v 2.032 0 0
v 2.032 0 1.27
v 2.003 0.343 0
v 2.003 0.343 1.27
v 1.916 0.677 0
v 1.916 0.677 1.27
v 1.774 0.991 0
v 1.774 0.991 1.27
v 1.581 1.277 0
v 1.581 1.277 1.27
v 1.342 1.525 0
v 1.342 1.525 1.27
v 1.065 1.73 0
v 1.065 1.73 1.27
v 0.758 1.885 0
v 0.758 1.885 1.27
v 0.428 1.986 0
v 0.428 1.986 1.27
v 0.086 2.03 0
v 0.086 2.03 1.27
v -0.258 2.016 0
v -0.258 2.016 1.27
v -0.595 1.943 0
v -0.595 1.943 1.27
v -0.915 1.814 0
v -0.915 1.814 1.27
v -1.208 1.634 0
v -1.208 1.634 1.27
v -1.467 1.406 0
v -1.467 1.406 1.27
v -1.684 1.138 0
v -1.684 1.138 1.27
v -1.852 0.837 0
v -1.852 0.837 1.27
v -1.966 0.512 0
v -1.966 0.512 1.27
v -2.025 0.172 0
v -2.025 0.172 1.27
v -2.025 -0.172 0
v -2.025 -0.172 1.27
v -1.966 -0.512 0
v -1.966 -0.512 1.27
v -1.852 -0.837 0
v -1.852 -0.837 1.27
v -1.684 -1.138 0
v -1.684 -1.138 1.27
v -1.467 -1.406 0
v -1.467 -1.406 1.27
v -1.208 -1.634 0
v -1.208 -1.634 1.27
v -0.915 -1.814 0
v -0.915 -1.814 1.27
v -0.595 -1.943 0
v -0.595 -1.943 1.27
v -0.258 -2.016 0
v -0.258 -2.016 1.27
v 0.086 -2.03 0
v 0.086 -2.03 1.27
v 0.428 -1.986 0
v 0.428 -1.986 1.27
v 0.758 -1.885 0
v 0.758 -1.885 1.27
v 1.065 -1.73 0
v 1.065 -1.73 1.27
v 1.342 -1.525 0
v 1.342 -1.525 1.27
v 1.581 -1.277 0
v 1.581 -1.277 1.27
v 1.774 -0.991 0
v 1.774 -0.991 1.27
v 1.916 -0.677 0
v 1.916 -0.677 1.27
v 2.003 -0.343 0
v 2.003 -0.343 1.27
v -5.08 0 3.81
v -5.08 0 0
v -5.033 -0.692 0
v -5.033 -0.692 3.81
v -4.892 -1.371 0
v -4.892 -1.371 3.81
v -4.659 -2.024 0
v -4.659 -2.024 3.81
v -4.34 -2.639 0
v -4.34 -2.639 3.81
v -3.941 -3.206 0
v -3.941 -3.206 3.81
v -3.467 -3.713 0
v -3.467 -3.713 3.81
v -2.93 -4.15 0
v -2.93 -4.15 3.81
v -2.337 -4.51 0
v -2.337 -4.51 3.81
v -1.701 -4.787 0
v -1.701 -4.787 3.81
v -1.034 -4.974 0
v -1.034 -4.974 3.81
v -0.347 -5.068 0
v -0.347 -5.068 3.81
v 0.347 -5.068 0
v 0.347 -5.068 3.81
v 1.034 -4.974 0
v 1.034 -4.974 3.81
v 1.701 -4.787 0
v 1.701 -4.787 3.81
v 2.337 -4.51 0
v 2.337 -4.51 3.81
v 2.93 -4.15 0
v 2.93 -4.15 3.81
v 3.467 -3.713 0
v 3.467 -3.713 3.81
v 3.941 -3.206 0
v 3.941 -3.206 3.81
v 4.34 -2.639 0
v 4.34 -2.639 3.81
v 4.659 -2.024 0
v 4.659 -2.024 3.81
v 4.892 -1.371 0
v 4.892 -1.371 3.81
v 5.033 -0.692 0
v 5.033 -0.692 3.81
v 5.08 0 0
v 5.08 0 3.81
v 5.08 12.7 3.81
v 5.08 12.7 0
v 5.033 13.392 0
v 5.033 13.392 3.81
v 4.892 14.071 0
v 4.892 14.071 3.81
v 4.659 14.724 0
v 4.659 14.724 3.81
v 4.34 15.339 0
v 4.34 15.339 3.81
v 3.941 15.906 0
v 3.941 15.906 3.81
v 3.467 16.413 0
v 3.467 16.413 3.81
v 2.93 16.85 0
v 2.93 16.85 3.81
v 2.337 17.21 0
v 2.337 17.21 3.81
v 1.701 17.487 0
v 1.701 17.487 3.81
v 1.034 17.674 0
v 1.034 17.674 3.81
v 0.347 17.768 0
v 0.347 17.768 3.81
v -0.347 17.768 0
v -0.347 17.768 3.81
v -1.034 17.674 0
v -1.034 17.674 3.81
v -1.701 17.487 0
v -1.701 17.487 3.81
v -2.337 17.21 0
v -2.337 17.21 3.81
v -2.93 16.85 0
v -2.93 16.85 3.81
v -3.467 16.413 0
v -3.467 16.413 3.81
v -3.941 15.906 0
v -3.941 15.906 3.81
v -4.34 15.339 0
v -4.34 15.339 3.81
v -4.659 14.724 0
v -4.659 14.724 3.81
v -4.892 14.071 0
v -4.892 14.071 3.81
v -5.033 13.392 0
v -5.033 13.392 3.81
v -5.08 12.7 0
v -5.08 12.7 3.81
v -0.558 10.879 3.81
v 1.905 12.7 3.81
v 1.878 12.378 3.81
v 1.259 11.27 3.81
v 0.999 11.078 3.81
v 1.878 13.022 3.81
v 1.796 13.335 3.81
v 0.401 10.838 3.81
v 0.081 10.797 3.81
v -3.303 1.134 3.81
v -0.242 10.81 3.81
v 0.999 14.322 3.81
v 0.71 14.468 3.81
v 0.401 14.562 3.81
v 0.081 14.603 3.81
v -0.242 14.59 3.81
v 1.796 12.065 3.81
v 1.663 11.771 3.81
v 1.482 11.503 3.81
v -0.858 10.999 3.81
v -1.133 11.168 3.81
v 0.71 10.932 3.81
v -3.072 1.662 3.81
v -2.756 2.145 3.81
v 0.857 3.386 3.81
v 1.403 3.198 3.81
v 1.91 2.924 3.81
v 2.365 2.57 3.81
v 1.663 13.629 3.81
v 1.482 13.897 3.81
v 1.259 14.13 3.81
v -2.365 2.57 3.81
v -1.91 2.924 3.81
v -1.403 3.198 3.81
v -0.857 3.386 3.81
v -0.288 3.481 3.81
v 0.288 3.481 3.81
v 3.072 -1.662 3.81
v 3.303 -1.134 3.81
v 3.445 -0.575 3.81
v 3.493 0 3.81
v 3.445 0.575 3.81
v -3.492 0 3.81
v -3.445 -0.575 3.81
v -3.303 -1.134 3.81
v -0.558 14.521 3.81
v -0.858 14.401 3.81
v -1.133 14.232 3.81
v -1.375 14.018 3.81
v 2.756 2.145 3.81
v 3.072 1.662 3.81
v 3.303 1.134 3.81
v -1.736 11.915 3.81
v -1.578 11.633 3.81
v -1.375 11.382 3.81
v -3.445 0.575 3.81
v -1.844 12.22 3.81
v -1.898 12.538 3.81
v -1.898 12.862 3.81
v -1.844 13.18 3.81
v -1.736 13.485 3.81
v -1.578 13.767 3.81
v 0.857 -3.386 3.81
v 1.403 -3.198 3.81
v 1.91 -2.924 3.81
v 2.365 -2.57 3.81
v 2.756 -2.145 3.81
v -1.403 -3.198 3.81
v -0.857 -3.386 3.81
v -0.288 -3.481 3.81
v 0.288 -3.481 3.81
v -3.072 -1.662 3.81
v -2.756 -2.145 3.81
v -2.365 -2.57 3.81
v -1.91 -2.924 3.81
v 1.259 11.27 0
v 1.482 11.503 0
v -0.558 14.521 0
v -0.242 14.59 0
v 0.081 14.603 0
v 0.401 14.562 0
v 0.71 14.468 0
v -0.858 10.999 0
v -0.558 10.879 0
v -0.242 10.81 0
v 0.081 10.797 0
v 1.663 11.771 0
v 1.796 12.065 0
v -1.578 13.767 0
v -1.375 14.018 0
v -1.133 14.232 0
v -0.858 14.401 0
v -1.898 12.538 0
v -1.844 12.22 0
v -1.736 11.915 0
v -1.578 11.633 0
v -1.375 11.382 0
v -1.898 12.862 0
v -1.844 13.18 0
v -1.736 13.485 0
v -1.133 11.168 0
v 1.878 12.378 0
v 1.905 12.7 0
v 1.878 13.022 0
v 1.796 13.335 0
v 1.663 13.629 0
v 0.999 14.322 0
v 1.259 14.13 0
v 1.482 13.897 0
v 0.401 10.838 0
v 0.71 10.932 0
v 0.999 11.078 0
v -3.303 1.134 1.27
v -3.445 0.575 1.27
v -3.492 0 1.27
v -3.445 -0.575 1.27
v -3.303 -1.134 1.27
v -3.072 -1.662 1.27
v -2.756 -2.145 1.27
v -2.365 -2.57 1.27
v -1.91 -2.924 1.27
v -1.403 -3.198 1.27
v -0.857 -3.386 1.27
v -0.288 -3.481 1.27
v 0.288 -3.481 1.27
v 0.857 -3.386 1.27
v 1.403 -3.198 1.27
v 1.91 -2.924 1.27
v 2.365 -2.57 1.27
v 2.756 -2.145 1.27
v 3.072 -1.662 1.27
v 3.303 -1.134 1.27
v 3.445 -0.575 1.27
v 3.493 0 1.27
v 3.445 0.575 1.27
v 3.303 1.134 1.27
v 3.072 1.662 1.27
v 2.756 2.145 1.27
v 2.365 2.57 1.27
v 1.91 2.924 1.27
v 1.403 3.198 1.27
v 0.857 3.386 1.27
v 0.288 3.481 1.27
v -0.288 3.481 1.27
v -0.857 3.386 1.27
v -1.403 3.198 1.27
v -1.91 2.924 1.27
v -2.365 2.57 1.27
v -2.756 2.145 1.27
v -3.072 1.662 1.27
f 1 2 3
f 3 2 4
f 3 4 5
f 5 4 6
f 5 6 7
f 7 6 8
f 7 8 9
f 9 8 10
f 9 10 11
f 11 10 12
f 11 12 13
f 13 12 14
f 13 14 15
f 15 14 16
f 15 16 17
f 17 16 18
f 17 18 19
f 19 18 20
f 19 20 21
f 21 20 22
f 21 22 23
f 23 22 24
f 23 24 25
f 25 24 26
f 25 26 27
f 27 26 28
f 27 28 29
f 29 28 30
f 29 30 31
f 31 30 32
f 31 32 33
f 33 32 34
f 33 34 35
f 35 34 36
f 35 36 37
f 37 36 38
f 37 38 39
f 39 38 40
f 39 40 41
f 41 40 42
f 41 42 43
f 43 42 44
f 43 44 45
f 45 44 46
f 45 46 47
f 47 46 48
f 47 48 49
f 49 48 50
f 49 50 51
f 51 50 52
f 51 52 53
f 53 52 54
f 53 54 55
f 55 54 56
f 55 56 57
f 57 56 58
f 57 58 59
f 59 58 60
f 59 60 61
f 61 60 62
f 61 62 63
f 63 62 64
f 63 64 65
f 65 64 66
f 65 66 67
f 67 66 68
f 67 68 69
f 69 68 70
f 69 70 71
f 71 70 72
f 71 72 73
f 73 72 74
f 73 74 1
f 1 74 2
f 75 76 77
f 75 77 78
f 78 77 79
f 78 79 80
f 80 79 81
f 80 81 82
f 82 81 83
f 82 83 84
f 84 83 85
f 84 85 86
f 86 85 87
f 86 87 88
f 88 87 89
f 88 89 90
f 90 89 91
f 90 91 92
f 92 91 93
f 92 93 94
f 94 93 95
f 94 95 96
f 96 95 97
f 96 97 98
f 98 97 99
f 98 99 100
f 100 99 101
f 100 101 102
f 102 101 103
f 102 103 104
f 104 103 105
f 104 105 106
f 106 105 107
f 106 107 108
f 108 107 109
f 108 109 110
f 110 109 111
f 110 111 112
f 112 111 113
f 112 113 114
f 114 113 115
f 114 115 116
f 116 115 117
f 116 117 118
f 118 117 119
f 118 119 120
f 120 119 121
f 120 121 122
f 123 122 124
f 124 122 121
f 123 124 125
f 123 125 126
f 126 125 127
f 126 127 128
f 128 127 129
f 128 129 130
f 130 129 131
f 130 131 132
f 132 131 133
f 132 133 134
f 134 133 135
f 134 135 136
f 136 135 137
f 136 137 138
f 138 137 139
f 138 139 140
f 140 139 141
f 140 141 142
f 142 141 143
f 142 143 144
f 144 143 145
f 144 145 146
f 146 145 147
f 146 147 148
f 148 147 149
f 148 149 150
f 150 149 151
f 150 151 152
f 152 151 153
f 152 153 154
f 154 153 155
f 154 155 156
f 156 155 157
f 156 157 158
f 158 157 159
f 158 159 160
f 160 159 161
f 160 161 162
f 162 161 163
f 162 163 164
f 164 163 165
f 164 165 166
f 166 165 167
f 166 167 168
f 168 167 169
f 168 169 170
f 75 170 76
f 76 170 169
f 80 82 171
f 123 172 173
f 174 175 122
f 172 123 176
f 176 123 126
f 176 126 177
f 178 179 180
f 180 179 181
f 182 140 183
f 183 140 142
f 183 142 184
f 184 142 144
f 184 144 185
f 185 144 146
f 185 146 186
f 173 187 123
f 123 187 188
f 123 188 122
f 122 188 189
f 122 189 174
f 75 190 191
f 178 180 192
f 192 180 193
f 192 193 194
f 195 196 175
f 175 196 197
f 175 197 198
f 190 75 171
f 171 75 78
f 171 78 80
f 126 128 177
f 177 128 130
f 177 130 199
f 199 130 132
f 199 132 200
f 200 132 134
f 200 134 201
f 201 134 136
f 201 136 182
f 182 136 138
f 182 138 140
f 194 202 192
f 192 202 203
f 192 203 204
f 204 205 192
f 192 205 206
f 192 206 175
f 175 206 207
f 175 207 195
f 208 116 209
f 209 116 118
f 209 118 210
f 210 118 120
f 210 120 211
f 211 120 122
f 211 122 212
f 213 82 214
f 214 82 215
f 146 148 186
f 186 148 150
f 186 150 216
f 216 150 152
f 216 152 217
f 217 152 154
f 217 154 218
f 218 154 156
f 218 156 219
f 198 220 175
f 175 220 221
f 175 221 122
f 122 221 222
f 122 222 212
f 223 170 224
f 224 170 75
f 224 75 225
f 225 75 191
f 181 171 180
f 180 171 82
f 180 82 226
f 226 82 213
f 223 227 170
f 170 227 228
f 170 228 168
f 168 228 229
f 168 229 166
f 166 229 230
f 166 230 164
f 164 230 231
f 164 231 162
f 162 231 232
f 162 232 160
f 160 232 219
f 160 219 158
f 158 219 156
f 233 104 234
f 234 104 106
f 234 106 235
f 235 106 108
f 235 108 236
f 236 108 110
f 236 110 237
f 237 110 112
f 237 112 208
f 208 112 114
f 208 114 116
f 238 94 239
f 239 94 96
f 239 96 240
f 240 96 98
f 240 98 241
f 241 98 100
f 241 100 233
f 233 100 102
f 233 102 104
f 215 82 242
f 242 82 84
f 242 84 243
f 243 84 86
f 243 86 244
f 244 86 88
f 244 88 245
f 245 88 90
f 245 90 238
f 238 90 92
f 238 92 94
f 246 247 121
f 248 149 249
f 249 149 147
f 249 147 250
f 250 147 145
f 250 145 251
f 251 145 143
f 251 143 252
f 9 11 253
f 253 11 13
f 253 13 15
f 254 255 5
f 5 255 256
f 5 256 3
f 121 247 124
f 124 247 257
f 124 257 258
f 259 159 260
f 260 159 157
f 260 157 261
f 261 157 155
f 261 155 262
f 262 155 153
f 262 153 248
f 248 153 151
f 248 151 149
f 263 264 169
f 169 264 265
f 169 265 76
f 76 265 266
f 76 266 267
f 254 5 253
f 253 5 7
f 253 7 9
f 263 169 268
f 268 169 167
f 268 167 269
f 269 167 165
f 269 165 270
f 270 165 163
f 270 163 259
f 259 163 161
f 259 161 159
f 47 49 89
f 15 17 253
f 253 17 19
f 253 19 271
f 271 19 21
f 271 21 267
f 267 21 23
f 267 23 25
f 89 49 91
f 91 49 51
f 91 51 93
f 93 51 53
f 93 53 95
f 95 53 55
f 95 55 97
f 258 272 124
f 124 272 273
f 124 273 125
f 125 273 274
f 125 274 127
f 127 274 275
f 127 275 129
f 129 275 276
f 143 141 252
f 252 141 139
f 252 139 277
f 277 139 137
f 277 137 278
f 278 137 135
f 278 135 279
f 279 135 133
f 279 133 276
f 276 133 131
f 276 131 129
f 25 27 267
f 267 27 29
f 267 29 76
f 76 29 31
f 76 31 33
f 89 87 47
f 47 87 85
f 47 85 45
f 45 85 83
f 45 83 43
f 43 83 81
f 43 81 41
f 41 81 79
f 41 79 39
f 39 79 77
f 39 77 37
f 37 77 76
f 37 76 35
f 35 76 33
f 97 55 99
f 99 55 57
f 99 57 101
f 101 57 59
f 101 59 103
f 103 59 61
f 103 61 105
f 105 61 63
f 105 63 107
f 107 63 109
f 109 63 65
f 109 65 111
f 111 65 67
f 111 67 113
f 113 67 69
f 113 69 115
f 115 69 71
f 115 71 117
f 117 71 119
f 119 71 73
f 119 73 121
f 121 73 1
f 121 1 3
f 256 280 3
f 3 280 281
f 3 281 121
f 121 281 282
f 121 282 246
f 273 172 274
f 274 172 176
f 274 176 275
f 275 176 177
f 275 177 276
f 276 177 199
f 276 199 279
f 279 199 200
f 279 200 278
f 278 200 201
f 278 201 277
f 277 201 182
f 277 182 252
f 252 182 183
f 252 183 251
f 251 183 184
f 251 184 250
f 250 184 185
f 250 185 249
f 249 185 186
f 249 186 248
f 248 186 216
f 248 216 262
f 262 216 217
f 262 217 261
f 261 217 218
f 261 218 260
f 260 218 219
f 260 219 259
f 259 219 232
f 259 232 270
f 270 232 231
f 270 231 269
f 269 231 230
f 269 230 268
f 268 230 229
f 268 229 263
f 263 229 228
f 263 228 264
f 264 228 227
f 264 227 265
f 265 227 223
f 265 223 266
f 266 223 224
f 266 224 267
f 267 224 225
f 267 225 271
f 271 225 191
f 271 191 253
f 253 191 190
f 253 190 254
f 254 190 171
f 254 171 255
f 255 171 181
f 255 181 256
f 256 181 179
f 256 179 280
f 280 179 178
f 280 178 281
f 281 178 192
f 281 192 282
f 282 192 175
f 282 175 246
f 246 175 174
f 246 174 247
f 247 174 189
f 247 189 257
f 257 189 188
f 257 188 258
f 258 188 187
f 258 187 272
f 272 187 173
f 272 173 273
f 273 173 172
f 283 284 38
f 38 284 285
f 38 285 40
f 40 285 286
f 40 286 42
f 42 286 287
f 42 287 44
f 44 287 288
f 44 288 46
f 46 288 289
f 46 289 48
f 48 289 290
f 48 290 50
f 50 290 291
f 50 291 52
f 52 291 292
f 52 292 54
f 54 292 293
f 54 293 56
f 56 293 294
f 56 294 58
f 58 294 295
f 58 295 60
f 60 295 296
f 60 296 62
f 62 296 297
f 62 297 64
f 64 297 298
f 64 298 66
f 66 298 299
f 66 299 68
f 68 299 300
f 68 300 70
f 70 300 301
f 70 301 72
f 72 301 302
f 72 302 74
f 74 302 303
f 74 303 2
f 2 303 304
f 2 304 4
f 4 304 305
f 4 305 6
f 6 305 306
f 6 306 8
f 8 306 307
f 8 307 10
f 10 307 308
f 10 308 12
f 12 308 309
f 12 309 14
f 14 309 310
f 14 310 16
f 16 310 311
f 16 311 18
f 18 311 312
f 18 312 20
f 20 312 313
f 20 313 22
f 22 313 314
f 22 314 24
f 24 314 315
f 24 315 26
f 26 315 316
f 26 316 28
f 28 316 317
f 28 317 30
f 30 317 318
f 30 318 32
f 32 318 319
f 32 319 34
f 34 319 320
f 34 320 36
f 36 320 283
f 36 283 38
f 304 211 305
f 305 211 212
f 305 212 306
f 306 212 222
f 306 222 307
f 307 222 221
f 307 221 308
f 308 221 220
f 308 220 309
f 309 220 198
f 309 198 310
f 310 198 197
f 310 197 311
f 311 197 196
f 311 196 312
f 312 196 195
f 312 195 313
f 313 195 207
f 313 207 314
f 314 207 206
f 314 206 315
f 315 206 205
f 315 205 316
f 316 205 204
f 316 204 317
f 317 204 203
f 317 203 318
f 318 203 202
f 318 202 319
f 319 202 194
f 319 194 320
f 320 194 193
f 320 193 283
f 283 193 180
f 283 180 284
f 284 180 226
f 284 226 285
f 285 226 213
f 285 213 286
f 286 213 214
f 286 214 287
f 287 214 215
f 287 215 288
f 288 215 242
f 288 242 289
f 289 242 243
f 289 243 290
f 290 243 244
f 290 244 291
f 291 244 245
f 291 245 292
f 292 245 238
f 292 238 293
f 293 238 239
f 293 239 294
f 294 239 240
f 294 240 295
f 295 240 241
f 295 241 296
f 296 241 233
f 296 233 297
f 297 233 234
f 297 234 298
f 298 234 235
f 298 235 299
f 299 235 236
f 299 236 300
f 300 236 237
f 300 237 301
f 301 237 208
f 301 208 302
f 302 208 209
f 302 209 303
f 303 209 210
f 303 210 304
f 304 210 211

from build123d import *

# Parameters (mm, degrees)
BASE_DEPTH         = 3.81
METRIC_HOLES_REACH = 20.88
SKETCH3_R          = 2.032
SKETCH3_R_2        = 1.905
SKETCH4_R          = 3.4925
CUT_EXTRUDE2_DEPTH = 2.54


with BuildPart() as part:
    # Sketch2 → base (new body)
    with BuildSketch(Plane(origin=(0, 0, 0), x_dir=(0, 1, 0), z_dir=(0, 0, 1))):
        with BuildLine():
            Line((0, 5.08), (12.7, 5.08))
            ThreePointArc((12.7, 5.08), (17.78, 0), (12.7, -5.08))
            Line((12.7, -5.08), (0, -5.08))
            ThreePointArc((0, -5.08), (-5.08, 0), (0, 5.08))
        make_face()
    extrude(amount=BASE_DEPTH)

    # Sketch3 → metric_holes (cut, up to next)
    with BuildSketch(Plane.XY.offset(3.81), mode=Mode.PRIVATE) as metric_holes_sk1:
        Circle(SKETCH3_R)
    metric_holes_tool1 = extrude(metric_holes_sk1.sketch, amount=-METRIC_HOLES_REACH, mode=Mode.PRIVATE) & part.part
    # Sketch3 → metric_holes (cut, up to next)
    with BuildSketch(Plane.XY.offset(3.81), mode=Mode.PRIVATE) as metric_holes_sk2:
        with Locations((0, 12.7)):
            Circle(SKETCH3_R_2)
    metric_holes_tool2 = extrude(metric_holes_sk2.sketch, amount=-METRIC_HOLES_REACH, mode=Mode.PRIVATE) & part.part
    add(metric_holes_tool1.solids().sort_by_distance((0, 0, 3.81))[0], mode=Mode.SUBTRACT)
    add(metric_holes_tool2.solids().sort_by_distance((0, 12.7, 3.81))[0], mode=Mode.SUBTRACT)

    # Sketch4 → Cut-Extrude2 (cut)
    with BuildSketch(Plane.XY.offset(3.81)):
        Circle(SKETCH4_R)
    extrude(amount=-CUT_EXTRUDE2_DEPTH, mode=Mode.SUBTRACT)


solid = part.part
